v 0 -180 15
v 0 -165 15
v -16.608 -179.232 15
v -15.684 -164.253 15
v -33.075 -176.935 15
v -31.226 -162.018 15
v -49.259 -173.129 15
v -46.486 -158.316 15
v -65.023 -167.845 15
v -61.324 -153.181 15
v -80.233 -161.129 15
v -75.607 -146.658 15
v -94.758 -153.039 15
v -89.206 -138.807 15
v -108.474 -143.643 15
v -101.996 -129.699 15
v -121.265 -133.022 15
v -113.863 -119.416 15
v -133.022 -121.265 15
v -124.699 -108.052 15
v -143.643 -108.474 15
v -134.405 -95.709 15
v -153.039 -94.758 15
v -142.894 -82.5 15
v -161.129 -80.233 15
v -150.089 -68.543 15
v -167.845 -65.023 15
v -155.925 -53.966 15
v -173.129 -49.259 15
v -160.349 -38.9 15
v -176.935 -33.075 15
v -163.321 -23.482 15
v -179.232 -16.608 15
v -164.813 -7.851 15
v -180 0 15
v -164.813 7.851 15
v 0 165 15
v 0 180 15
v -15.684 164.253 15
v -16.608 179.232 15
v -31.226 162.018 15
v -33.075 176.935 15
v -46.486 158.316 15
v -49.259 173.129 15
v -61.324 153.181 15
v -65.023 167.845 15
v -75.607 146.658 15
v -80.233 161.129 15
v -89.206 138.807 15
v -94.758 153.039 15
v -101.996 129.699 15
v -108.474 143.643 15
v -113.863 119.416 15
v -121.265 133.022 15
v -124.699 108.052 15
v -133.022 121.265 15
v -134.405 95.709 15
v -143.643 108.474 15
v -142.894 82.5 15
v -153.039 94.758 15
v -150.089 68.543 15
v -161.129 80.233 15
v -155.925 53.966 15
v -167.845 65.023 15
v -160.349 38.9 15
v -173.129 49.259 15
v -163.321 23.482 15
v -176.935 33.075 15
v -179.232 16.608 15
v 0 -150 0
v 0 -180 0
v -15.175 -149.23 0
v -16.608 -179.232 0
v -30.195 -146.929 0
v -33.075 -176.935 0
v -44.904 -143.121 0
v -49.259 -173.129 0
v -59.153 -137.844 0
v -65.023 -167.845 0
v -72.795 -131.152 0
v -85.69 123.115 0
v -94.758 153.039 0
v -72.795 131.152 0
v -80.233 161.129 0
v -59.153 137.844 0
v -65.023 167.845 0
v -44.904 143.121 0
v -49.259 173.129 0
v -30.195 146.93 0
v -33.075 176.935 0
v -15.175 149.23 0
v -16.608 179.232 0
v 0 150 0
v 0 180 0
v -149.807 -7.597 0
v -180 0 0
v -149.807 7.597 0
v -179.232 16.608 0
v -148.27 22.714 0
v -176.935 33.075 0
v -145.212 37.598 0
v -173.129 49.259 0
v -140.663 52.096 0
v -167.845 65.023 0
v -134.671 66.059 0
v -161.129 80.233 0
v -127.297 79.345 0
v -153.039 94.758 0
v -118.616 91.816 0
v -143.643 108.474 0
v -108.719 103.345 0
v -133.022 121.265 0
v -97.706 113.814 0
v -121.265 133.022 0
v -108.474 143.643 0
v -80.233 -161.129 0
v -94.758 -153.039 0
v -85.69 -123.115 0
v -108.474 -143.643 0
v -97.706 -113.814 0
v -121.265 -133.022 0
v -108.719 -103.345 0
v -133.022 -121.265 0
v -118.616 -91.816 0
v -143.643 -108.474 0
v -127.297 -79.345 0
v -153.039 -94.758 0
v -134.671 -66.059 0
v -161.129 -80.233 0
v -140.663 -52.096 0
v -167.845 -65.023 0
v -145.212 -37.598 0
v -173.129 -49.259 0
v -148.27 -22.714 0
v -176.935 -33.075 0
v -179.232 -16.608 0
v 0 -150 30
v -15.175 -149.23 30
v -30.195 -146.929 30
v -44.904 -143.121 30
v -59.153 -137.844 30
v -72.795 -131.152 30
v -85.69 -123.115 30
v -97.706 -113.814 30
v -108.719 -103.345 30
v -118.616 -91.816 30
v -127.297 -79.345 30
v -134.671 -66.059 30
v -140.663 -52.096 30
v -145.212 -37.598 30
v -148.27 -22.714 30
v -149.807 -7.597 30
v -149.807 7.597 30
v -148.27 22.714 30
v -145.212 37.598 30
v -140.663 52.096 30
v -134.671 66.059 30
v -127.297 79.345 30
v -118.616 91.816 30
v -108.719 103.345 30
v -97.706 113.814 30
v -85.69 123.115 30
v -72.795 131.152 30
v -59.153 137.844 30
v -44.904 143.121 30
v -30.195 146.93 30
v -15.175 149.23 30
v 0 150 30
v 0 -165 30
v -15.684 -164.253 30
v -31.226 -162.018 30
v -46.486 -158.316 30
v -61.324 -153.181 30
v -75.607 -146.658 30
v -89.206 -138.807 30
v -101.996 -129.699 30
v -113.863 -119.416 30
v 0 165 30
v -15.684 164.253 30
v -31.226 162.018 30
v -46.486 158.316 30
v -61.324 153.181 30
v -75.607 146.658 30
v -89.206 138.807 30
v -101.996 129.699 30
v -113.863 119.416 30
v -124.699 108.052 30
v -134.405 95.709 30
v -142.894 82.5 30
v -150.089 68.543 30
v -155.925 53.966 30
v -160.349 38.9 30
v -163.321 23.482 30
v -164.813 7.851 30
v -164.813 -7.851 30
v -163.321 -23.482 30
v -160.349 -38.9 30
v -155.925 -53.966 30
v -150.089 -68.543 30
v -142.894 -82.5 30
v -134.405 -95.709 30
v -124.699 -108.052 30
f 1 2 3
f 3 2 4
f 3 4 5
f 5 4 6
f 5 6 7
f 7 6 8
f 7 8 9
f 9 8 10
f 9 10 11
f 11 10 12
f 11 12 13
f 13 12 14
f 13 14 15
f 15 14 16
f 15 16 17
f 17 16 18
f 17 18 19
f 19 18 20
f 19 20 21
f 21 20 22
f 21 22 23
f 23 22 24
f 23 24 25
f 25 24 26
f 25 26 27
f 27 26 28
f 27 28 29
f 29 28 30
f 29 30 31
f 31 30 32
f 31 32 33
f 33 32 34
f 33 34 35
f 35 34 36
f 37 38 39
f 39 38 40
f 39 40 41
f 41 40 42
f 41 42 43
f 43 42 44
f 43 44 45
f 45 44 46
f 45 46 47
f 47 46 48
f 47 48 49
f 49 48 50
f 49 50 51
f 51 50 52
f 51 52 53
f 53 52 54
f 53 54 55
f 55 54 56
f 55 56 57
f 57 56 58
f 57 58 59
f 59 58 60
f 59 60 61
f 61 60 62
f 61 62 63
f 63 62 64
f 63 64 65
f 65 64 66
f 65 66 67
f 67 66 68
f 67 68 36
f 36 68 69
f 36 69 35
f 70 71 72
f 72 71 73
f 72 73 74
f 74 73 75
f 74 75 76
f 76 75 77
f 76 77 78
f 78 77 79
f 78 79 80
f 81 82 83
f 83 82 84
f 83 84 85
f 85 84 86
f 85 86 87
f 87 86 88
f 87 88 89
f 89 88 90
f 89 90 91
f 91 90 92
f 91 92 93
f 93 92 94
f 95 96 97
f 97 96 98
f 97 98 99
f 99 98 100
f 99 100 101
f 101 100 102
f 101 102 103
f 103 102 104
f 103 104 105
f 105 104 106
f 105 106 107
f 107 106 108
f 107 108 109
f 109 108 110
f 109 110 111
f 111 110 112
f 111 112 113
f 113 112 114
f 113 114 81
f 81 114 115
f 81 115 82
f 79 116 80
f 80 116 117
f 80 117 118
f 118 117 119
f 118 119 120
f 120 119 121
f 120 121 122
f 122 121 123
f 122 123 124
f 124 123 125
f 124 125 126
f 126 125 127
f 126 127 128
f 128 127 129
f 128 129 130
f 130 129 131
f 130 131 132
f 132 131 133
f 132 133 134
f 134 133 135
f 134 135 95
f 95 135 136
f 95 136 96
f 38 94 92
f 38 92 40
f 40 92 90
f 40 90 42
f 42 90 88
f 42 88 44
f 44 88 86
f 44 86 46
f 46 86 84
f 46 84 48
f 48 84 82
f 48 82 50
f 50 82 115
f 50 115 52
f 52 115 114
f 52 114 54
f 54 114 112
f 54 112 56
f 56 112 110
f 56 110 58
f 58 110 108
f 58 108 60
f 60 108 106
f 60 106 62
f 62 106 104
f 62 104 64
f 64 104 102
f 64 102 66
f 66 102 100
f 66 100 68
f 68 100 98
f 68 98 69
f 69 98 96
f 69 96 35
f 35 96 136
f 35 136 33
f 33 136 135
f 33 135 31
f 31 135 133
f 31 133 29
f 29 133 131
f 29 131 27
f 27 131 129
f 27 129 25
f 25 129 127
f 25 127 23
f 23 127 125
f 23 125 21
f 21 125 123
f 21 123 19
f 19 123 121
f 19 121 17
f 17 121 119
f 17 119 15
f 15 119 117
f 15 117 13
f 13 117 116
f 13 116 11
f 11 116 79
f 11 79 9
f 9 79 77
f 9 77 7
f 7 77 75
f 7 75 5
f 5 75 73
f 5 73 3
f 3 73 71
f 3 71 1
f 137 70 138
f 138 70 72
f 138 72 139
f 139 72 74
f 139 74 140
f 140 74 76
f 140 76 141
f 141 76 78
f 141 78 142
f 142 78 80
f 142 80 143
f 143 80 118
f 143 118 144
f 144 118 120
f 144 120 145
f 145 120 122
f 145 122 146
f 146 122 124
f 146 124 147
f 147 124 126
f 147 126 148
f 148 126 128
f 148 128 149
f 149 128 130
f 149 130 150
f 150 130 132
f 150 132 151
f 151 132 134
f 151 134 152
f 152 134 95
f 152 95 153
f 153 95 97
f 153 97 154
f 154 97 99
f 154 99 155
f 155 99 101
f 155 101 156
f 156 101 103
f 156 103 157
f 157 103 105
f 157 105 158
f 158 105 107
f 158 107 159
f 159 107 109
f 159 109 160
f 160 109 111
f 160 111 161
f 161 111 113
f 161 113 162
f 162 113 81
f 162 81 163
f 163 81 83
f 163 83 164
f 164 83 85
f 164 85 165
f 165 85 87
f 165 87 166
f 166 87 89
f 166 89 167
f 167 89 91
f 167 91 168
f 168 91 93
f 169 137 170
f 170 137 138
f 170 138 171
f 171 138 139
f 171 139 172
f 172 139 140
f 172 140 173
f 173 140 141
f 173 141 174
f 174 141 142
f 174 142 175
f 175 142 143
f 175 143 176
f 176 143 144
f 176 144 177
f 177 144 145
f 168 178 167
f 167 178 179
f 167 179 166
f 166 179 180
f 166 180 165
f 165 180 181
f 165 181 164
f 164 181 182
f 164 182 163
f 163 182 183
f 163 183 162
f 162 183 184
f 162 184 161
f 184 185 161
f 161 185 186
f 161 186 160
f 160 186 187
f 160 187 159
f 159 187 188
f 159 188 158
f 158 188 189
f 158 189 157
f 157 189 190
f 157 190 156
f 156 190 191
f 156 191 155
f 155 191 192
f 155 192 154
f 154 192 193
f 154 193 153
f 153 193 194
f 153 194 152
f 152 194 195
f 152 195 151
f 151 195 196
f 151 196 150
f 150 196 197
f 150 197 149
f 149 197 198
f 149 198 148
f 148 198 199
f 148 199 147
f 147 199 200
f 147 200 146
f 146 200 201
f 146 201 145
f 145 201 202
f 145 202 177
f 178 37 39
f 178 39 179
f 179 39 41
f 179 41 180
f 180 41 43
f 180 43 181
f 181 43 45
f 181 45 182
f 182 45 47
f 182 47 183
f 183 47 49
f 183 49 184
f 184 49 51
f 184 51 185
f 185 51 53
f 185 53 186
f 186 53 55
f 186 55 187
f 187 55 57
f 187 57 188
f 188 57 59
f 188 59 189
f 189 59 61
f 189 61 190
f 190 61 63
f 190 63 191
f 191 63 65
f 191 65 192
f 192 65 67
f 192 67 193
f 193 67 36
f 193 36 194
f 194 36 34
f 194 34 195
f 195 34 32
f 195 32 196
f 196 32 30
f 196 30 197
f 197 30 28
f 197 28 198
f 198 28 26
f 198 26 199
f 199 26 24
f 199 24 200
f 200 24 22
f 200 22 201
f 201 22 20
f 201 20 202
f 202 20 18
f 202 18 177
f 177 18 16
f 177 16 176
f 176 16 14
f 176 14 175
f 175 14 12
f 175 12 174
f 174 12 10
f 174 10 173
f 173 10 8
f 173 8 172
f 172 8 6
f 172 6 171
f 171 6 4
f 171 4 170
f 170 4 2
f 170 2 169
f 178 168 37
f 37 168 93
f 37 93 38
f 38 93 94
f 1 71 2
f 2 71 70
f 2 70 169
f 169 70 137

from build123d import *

# Parameters (mm, degrees)
SKETCH1_R           = 180
SKETCH1_R_2         = 150
BOSS_EXTRUDE1_DEPTH = 15
SKETCH2_R           = 165
SKETCH2_R_2         = 150
BOSS_EXTRUDE2_DEPTH = 15
CUT_EXTRUDE1_REACH  = 32
SKETCH3_W           = 245
SKETCH3_H           = 360


with BuildPart() as part:
    # Sketch1 → Boss-Extrude1 (new body)
    with BuildSketch(Plane.XY):
        Circle(SKETCH1_R)
        Circle(SKETCH1_R_2, mode=Mode.SUBTRACT)
    extrude(amount=BOSS_EXTRUDE1_DEPTH)

    # Sketch2 → Boss-Extrude2 (add)
    with BuildSketch(Plane.XY.offset(15)):
        Circle(SKETCH2_R)
        Circle(SKETCH2_R_2, mode=Mode.SUBTRACT)
    extrude(amount=BOSS_EXTRUDE2_DEPTH)

    # Sketch3 → Cut-Extrude1 (cut, up to next)
    with BuildSketch(Plane.XY, mode=Mode.PRIVATE) as cut_extrude1_sk1:
        with Locations((122.5, 0)):
            Rectangle(SKETCH3_W, SKETCH3_H)
    cut_extrude1_tool1 = extrude(cut_extrude1_sk1.sketch, amount=CUT_EXTRUDE1_REACH, mode=Mode.PRIVATE) & part.part
    add(cut_extrude1_tool1.solids().sort_by_distance((122.5, 0, 0))[0], mode=Mode.SUBTRACT)


solid = part.part
